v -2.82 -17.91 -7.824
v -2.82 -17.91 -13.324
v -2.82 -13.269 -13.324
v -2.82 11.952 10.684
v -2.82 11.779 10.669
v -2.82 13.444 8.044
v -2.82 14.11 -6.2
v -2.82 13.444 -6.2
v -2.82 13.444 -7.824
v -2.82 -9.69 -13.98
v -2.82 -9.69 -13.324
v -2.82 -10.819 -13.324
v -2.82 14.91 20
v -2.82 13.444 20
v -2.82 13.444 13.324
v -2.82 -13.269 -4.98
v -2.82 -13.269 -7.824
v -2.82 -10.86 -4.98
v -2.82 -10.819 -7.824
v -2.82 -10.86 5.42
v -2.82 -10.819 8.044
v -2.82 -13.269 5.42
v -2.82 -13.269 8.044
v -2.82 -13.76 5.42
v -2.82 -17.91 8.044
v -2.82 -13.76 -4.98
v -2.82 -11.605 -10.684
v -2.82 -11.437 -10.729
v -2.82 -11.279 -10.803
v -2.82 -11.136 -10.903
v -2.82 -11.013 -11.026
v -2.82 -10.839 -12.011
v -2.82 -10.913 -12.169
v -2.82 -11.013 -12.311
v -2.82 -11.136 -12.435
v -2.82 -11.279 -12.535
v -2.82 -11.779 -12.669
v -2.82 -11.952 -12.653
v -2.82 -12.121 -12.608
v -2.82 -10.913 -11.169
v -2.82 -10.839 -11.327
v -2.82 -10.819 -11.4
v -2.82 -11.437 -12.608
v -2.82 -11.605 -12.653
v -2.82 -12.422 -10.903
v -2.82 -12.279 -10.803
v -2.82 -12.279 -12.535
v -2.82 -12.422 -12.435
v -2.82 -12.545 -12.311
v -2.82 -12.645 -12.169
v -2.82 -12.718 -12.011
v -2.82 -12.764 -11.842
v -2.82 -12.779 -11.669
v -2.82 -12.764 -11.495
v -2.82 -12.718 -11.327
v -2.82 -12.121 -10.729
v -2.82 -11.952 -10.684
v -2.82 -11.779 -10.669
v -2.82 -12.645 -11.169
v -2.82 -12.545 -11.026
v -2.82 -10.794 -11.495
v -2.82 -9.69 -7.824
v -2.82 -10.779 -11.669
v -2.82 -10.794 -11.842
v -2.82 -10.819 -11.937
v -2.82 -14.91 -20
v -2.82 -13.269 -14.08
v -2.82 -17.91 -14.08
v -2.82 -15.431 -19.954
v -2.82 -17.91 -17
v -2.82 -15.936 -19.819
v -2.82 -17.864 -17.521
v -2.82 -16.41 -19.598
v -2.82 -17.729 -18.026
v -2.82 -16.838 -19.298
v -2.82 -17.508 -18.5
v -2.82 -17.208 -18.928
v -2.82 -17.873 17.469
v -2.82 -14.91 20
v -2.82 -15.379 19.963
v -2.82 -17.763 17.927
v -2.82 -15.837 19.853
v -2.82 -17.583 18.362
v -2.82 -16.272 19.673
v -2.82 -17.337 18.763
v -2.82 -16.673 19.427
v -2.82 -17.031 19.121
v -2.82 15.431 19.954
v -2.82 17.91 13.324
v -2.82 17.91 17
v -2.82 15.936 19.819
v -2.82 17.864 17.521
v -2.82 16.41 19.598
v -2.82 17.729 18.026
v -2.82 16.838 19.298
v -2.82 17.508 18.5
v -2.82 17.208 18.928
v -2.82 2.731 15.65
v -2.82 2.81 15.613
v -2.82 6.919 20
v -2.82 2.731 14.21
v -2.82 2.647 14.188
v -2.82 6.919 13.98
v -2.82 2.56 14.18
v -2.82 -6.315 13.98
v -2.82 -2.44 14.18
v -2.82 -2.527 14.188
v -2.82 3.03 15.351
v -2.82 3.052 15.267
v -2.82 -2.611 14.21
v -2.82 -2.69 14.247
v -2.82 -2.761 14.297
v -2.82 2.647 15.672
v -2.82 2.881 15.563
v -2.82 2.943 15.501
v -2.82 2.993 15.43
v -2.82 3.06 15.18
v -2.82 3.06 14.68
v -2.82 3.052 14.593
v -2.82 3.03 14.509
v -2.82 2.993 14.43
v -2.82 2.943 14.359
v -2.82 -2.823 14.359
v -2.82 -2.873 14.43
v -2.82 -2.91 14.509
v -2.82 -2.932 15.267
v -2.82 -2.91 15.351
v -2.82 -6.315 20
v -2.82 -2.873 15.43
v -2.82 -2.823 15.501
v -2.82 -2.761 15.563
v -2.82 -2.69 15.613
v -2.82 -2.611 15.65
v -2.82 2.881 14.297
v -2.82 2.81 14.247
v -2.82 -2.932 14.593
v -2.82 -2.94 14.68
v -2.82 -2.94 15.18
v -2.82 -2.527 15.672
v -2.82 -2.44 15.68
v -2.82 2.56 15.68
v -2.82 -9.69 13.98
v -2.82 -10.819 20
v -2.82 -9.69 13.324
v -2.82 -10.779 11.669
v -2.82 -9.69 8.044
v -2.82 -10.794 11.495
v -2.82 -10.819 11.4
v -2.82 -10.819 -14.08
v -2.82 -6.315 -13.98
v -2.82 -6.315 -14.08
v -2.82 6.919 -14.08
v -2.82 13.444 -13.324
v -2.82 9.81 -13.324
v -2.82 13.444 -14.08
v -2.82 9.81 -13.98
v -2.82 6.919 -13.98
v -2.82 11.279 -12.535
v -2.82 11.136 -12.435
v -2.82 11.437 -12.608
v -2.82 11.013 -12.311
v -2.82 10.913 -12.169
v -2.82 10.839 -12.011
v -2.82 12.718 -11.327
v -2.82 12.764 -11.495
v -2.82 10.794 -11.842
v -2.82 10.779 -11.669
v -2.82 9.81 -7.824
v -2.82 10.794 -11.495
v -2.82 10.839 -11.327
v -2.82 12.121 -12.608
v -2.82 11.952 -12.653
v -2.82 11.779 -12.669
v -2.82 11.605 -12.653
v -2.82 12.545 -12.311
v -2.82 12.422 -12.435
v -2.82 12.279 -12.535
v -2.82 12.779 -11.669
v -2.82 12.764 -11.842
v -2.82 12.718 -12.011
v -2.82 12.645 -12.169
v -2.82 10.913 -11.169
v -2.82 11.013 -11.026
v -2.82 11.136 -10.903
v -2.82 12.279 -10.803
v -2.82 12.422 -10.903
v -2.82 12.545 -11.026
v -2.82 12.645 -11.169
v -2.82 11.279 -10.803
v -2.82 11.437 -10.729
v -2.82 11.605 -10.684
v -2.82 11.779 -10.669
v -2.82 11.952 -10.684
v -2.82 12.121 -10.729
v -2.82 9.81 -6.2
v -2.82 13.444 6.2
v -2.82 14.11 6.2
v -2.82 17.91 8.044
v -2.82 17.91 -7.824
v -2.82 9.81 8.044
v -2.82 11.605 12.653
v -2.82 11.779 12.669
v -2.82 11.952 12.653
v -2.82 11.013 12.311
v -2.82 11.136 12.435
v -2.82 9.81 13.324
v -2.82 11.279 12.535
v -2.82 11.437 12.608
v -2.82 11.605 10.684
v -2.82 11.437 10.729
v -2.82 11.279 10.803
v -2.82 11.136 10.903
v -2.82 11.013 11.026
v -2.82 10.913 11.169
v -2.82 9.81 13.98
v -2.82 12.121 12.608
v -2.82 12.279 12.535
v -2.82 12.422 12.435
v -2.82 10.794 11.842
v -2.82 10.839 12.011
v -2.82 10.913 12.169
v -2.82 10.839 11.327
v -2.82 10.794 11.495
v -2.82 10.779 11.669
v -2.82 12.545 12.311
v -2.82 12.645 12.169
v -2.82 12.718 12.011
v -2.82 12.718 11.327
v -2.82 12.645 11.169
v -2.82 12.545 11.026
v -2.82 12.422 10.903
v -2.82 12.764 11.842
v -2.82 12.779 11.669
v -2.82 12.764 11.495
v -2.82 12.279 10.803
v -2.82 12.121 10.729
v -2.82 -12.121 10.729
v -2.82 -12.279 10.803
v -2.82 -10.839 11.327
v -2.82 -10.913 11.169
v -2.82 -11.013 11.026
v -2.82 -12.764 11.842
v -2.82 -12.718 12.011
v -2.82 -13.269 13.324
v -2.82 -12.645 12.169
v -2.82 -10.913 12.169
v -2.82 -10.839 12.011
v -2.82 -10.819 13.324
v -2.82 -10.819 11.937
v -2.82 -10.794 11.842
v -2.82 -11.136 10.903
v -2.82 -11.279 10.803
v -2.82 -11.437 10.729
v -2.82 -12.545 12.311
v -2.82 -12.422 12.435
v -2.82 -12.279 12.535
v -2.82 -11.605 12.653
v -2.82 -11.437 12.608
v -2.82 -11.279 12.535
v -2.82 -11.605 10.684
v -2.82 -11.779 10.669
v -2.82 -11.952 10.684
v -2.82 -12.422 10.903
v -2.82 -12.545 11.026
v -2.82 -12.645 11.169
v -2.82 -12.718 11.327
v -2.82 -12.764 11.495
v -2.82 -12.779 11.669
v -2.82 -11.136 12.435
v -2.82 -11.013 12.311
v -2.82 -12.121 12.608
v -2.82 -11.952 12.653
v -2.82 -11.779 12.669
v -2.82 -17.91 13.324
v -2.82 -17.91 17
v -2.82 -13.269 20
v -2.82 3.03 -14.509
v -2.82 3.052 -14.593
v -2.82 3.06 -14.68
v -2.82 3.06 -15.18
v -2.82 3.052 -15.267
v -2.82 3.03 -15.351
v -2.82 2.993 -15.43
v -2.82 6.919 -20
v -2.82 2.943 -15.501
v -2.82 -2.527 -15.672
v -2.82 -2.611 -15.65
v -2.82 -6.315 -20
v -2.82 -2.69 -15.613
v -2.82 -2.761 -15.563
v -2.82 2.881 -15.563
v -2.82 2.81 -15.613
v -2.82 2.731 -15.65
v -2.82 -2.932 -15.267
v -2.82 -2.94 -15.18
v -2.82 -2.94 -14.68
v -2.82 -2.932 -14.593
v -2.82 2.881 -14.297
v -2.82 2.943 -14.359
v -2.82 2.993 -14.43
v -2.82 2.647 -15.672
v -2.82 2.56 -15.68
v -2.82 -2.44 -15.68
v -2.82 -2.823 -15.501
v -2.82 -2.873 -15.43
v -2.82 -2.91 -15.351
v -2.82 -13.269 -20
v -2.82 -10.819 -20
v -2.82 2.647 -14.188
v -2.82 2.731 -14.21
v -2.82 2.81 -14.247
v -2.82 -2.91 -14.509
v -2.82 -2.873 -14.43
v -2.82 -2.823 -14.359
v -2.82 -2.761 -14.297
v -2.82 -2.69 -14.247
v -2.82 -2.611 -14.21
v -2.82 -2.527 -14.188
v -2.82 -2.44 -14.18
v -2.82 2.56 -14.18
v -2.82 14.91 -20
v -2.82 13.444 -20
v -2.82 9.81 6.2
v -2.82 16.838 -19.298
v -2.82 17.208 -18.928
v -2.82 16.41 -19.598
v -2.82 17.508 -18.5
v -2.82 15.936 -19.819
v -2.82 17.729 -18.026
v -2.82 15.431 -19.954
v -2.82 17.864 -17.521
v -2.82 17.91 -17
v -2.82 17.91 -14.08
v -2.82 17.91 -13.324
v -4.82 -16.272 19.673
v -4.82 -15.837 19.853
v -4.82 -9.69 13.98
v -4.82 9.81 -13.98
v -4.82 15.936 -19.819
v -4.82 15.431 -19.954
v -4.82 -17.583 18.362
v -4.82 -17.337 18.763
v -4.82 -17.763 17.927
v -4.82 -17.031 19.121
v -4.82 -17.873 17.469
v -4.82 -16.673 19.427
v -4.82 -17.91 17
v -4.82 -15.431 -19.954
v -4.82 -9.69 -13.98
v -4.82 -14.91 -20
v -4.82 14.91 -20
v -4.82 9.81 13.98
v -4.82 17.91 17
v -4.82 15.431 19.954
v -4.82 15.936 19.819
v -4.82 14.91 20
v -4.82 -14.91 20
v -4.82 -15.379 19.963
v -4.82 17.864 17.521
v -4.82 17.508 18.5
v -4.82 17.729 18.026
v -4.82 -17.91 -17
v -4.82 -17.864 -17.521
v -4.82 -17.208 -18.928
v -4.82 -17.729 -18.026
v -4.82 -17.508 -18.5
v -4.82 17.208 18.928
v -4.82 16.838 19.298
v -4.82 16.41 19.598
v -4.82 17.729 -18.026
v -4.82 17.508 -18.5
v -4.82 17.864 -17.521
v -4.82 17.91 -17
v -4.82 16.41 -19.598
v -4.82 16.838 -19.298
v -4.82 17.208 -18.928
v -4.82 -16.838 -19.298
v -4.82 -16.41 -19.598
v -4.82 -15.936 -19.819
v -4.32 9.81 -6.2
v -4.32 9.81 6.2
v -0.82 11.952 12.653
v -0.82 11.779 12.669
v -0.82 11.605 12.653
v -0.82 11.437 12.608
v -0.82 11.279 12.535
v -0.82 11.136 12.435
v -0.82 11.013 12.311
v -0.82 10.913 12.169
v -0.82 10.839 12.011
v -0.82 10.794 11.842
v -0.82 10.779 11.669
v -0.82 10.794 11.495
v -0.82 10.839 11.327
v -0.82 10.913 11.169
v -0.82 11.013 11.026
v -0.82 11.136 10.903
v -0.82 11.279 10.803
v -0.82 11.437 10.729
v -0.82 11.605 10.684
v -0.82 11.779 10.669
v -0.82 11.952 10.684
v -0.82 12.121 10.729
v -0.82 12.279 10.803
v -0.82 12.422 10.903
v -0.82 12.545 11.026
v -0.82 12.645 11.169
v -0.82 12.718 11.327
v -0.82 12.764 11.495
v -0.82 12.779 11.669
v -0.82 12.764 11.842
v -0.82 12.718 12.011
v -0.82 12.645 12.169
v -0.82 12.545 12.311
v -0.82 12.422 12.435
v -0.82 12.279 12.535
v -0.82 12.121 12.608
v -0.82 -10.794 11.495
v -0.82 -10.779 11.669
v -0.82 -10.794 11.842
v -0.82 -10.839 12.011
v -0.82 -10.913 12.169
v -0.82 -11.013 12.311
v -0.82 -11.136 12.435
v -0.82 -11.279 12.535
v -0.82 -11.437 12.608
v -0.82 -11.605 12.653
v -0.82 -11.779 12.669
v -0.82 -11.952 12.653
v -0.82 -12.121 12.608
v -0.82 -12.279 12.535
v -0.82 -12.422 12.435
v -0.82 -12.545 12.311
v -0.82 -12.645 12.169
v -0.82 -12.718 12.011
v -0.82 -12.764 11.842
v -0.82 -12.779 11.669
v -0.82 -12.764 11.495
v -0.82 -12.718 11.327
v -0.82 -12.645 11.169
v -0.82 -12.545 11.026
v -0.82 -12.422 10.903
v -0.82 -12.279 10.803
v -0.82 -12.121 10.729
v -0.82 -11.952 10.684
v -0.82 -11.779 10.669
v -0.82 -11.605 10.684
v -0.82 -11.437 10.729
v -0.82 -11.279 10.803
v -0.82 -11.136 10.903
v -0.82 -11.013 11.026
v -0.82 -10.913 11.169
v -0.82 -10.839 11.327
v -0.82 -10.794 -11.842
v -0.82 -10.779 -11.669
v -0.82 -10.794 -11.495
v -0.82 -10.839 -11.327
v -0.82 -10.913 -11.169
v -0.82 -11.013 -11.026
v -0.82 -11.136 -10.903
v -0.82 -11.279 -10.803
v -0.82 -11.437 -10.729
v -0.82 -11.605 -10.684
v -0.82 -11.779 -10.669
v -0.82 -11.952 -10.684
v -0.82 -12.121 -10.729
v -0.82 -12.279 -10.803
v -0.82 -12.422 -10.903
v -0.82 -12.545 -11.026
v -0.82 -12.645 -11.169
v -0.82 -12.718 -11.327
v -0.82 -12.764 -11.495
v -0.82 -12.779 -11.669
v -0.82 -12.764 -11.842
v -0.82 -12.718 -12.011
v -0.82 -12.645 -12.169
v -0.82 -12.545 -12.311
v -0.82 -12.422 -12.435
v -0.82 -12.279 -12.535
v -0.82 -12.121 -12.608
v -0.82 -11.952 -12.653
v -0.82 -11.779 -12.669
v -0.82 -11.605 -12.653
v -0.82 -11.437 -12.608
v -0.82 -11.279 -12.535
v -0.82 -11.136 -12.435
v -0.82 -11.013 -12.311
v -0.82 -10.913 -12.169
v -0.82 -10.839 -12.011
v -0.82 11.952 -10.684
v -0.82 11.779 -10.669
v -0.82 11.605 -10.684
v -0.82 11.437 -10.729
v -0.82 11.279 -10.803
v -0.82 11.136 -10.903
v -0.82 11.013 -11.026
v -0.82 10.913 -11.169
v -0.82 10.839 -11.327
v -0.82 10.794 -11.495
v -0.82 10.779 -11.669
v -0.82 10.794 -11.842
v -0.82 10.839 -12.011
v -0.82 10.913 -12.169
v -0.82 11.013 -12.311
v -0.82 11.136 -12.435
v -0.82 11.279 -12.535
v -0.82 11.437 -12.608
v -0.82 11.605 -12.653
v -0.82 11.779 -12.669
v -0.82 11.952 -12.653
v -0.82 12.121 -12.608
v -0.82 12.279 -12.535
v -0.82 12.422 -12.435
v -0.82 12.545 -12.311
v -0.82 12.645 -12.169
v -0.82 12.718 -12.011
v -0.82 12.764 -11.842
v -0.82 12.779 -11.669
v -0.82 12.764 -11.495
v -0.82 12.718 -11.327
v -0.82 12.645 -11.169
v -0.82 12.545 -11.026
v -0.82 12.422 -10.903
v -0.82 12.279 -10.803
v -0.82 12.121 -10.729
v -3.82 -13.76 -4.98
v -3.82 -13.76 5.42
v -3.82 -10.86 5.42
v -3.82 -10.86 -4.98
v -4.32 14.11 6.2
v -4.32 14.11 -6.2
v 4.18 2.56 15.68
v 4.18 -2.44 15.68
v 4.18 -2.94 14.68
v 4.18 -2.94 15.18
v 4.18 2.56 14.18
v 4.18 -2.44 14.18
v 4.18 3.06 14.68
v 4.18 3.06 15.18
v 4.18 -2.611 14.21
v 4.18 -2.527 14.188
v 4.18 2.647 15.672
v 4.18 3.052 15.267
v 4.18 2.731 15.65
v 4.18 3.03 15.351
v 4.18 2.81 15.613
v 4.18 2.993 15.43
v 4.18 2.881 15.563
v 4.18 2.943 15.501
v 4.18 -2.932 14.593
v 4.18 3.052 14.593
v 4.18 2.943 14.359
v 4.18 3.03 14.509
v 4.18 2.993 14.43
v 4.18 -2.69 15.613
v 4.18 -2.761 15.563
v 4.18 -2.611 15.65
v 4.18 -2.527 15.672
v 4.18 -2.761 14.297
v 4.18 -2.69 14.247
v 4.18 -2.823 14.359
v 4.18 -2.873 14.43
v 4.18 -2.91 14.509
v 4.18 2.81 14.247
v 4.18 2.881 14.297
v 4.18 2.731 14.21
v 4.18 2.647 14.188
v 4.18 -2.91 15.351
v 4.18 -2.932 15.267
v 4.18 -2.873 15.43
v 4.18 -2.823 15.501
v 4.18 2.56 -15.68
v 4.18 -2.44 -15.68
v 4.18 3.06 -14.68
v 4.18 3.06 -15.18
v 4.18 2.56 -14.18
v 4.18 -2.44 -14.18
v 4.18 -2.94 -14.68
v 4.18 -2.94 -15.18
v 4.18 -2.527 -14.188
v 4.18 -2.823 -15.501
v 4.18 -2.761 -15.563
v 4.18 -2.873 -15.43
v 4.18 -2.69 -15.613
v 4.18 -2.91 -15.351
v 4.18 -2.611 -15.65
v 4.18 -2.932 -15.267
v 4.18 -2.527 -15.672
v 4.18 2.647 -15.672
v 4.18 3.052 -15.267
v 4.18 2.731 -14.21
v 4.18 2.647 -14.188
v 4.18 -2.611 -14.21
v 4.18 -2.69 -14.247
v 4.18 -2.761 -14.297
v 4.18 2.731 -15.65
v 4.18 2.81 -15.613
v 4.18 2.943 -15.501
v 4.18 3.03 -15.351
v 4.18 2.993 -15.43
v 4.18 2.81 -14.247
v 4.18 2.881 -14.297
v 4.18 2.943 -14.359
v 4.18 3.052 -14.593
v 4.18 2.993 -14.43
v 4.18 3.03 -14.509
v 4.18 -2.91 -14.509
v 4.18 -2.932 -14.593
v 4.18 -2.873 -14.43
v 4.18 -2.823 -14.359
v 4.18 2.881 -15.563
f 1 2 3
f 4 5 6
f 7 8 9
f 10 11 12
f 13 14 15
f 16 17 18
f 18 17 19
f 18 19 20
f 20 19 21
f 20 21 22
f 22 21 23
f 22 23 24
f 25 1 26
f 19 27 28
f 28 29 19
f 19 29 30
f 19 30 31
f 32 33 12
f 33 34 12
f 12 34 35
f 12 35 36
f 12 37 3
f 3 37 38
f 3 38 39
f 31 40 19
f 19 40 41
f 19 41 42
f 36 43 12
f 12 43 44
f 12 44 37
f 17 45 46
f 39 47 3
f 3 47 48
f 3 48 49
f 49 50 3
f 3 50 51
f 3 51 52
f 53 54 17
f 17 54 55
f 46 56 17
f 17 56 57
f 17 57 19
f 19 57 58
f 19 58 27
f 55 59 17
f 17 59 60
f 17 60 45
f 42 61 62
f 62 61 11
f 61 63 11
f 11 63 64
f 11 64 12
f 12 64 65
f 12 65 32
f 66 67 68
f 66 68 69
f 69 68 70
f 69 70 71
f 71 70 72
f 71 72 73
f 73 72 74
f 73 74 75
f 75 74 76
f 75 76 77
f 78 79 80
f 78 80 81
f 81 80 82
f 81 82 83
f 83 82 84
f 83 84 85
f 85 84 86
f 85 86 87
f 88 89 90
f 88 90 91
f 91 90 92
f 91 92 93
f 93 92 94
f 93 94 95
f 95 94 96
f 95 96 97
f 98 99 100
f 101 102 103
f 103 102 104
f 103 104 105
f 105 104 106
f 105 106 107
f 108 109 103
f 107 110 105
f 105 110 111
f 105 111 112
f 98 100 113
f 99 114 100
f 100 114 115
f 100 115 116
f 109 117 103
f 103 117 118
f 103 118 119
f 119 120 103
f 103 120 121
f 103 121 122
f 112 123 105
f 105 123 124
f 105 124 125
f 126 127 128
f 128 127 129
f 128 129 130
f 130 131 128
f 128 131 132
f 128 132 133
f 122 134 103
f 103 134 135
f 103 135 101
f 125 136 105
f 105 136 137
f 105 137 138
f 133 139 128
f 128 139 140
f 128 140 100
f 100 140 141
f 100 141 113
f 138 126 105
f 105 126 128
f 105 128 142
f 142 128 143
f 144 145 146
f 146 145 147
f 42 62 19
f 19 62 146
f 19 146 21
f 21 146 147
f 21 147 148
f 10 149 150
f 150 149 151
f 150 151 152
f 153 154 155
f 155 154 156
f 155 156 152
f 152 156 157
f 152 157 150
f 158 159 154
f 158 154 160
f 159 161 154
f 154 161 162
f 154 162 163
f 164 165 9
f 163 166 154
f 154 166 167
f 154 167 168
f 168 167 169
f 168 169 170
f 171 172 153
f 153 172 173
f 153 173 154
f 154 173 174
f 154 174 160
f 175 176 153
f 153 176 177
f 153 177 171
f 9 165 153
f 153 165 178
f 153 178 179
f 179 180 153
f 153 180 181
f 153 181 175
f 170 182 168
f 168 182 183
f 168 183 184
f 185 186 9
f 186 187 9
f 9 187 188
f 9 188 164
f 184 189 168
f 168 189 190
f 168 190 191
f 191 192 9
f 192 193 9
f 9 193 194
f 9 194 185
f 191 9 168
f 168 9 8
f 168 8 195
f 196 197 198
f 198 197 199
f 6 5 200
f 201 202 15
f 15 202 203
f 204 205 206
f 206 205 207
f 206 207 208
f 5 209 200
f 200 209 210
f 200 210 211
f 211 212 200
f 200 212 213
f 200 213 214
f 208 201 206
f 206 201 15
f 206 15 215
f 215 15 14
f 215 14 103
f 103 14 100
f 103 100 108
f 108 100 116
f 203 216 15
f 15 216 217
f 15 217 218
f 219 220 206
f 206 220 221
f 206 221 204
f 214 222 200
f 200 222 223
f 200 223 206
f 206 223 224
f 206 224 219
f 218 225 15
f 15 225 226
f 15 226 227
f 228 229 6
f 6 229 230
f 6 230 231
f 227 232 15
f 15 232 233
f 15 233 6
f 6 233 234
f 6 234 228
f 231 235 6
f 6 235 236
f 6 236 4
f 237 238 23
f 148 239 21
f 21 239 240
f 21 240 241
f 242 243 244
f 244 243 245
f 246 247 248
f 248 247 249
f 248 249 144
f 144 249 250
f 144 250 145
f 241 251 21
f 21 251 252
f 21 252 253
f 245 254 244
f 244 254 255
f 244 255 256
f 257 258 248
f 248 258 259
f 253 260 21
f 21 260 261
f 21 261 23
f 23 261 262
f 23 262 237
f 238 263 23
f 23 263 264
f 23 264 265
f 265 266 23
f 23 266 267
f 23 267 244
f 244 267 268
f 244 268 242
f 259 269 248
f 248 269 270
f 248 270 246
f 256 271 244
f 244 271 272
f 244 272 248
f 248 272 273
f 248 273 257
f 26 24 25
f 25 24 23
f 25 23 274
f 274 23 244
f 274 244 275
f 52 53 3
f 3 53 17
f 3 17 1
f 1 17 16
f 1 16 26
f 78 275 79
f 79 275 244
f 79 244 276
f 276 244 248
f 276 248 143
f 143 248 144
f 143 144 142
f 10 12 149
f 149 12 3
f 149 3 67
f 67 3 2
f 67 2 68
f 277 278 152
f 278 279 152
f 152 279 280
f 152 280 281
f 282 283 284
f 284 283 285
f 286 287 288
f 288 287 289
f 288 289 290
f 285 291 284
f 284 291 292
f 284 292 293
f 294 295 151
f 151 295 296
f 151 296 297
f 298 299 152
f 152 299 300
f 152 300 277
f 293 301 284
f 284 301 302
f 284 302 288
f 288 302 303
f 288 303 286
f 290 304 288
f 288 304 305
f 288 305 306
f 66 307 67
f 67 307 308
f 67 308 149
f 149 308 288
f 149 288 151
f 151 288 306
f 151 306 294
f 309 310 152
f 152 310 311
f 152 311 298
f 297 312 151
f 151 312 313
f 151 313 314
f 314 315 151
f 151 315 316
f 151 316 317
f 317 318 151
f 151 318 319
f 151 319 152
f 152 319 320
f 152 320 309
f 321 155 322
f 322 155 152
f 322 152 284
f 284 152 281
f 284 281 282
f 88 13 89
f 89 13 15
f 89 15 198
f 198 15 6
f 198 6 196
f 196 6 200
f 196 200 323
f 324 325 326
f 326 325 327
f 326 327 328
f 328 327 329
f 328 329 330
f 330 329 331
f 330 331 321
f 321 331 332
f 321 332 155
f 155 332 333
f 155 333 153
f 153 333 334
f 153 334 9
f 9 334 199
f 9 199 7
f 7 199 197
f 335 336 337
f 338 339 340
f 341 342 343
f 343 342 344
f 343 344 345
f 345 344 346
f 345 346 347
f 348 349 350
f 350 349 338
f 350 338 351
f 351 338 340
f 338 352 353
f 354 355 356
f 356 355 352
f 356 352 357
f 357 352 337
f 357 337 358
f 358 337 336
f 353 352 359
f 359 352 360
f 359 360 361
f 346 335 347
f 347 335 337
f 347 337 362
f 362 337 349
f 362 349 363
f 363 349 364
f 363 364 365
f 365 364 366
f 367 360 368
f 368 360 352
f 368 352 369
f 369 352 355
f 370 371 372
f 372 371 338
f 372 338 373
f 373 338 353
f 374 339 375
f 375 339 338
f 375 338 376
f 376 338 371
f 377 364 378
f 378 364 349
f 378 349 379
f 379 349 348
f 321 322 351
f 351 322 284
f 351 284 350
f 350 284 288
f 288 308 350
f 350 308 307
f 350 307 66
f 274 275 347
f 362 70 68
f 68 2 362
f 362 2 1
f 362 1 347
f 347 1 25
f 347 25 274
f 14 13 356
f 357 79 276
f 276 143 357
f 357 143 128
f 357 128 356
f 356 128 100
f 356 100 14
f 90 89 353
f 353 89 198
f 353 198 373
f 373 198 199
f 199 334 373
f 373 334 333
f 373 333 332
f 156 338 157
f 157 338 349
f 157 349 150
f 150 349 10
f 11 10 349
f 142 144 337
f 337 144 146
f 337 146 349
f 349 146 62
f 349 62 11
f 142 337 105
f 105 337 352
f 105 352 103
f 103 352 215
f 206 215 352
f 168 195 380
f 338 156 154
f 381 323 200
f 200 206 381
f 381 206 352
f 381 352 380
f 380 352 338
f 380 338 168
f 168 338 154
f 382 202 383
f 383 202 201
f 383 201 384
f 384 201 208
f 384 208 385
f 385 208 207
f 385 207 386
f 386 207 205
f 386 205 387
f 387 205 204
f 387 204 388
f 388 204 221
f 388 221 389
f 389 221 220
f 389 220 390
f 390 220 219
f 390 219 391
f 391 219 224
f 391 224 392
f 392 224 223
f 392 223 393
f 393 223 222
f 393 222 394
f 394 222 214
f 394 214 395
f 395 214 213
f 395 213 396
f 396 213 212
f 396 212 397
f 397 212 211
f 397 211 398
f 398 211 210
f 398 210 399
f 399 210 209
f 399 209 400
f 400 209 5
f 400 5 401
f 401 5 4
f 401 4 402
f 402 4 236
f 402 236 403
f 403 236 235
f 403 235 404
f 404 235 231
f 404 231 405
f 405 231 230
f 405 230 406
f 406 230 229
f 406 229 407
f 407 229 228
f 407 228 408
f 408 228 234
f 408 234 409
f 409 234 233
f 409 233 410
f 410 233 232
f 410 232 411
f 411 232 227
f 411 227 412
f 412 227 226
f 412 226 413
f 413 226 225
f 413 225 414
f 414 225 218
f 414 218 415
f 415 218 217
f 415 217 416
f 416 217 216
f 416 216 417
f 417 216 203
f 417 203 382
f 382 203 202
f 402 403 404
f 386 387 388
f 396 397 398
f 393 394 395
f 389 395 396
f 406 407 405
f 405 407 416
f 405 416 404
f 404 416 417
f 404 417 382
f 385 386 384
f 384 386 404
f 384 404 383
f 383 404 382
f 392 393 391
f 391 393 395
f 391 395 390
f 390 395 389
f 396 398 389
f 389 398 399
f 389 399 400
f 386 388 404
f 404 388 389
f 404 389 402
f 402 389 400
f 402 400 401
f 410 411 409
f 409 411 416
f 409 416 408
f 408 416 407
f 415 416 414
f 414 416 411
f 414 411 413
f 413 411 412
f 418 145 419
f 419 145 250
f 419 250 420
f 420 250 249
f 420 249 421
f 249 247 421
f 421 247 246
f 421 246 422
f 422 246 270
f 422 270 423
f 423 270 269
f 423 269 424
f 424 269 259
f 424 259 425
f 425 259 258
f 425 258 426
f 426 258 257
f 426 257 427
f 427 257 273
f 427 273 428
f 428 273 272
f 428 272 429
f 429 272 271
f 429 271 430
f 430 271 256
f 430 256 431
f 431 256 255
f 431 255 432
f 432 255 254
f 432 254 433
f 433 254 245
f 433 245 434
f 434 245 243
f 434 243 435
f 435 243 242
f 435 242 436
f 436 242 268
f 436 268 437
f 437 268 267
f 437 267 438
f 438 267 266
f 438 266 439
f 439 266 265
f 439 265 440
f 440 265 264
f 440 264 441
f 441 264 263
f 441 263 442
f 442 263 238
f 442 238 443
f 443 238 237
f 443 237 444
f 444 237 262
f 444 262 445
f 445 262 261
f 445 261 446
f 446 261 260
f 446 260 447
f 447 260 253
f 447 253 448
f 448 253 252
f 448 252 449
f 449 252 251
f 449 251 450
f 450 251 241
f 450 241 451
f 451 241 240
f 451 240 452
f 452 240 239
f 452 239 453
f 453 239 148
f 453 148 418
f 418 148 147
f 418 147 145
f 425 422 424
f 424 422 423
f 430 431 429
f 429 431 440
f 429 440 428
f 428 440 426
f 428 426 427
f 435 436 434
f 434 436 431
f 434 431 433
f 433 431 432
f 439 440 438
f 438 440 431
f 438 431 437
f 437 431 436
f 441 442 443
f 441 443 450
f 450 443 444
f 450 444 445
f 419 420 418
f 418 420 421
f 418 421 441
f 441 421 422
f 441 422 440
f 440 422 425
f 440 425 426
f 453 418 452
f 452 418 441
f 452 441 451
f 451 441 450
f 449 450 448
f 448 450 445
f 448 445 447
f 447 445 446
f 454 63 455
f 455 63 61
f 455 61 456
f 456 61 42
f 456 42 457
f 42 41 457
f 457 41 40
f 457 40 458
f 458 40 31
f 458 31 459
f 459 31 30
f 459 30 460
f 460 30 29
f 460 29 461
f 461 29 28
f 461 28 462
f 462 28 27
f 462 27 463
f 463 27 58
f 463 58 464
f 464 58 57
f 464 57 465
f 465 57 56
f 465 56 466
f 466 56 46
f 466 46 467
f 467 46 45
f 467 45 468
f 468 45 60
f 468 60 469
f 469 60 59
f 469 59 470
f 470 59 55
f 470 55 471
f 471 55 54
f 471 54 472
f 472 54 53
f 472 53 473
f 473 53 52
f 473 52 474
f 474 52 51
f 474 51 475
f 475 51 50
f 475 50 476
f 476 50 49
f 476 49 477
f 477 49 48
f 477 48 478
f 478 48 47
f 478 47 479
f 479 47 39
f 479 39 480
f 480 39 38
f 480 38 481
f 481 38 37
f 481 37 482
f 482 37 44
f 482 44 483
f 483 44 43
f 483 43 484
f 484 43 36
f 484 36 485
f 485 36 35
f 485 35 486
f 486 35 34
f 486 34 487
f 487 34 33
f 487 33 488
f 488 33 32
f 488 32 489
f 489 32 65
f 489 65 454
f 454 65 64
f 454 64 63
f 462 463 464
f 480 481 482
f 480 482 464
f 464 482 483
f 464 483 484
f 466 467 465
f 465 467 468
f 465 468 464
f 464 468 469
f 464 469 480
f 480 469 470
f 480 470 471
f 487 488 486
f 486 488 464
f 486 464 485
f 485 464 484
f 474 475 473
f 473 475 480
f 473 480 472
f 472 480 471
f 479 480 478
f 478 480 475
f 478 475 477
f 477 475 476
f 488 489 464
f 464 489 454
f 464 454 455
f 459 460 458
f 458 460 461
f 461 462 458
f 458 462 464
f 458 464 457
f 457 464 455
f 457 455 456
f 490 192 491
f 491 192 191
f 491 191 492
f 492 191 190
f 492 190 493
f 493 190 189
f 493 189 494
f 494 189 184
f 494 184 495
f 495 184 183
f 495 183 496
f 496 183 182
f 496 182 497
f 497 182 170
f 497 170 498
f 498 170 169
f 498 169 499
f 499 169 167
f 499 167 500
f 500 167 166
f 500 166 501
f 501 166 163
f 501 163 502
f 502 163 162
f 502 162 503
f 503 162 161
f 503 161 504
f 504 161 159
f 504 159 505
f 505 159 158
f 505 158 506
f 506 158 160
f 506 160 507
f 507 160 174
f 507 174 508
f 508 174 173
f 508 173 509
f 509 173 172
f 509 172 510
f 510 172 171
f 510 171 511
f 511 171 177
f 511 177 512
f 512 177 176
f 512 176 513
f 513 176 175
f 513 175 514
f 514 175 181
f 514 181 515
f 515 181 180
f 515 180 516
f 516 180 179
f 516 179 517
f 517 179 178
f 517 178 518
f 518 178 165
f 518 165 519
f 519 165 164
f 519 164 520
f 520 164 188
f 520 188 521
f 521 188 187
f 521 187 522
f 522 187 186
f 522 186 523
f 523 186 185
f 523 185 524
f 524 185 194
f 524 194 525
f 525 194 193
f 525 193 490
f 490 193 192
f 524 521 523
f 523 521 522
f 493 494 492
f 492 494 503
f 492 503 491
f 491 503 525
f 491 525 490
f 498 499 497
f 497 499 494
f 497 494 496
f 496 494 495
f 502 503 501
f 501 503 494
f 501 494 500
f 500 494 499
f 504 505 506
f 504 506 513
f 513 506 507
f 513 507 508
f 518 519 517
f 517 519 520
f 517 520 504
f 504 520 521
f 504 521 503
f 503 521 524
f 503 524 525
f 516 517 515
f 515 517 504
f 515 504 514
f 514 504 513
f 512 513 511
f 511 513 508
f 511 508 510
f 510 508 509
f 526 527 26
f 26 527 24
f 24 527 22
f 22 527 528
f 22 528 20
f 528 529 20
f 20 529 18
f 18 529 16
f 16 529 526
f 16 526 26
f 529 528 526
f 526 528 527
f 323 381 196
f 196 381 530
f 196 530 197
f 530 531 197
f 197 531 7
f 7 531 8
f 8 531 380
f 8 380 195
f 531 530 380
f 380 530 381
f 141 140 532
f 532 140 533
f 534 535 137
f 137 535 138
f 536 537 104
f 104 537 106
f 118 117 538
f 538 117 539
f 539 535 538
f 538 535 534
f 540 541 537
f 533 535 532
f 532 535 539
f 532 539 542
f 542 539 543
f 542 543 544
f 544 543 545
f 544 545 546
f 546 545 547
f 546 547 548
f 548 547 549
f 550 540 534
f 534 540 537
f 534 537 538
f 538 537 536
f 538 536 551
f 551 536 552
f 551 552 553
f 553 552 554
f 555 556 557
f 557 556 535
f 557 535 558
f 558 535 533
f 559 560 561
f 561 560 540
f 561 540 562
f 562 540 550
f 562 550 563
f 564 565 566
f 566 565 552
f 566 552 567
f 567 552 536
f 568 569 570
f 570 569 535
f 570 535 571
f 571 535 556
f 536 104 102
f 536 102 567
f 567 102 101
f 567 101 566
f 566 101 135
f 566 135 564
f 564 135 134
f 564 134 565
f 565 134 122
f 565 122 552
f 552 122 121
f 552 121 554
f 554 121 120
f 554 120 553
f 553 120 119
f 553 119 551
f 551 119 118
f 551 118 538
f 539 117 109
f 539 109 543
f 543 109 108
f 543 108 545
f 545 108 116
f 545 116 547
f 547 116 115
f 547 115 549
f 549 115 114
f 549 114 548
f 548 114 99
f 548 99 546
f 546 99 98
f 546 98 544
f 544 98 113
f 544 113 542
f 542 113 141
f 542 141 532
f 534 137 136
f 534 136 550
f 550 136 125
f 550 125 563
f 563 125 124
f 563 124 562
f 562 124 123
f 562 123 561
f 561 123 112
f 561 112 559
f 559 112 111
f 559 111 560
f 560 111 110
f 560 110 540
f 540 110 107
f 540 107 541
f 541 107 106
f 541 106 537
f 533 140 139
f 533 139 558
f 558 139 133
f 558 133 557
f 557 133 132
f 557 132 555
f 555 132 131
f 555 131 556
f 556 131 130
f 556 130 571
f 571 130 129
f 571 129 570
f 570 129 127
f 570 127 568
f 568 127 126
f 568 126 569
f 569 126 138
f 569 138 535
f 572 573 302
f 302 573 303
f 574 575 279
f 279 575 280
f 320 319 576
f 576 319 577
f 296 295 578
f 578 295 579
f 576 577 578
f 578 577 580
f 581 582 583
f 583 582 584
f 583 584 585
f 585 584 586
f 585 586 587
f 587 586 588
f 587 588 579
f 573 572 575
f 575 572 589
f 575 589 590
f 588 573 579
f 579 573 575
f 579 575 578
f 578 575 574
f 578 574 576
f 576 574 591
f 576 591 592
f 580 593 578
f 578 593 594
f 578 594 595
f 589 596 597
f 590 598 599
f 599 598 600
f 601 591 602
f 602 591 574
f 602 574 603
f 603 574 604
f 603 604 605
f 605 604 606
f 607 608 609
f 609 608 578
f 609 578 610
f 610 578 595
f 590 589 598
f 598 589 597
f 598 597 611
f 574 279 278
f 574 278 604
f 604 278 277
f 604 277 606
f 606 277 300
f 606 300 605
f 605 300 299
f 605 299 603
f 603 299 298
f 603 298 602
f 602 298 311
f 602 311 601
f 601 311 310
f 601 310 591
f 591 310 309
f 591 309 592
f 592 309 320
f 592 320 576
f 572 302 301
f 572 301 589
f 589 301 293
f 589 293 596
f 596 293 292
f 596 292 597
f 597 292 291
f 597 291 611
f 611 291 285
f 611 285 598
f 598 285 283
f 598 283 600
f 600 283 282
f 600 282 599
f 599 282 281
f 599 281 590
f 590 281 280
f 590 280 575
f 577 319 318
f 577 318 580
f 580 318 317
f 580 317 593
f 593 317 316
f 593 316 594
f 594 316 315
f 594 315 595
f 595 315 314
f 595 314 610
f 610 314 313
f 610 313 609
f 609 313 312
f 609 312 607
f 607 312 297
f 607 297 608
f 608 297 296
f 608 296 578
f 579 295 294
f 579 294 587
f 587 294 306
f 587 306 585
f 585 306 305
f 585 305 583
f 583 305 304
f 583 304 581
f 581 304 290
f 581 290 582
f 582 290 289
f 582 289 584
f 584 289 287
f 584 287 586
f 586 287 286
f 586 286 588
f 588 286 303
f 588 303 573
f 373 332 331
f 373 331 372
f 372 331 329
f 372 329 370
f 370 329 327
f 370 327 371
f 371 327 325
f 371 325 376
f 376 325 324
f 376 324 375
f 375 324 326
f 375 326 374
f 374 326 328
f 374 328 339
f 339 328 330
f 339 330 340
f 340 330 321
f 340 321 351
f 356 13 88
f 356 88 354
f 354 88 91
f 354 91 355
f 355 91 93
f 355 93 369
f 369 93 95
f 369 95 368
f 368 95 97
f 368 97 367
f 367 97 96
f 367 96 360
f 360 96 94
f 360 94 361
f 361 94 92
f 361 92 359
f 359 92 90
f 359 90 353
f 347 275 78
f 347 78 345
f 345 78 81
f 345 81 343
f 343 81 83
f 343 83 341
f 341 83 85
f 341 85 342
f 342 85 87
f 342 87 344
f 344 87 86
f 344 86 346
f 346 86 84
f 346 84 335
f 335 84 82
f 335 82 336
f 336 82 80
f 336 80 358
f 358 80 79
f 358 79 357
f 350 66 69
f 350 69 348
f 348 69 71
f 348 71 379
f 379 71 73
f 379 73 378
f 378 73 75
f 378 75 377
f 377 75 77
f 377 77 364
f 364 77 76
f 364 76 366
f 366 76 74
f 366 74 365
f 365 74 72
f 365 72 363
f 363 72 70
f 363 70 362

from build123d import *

# Parameters (mm, degrees)
ESQUISSE3_W             = 40
ESQUISSE3_H             = 35.82
BOSS_EXTRU_1_DEPTH      = 2
ESQUISSE4_R             = 1
BOSS_EXTRU_2_DEPTH      = 2
ESQUISSE5_W             = 10.4
ESQUISSE5_H             = 2.9
ENL_V_MAT_EXTRU_1_DEPTH = 1
ESQUISSE6_W             = 12.4
ESQUISSE6_H             = 4.5
ENL_V_MAT_EXTRU_2_DEPTH = 1.5
ESQUISSE8_W             = 1.5
ESQUISSE8_H             = 6
BOSS_EXTRU_3_DEPTH      = 7
CONG_1_R                = 0.5
CONG_1_OF_SYM_TRIE1_R   = 0.5
CONG_2_R                = 3


with BuildPart() as part:
    # Esquisse3 → Boss.-Extru.1 (new body)
    with BuildSketch(Plane.ZY.offset(2.820074362)):
        Rectangle(ESQUISSE3_W, ESQUISSE3_H)
        Polygon((-13.98, 9.81), (-13.98, -9.69), (13.98, -9.69), (13.98, 9.81), (6, 9.81), (-6, 9.81), align=None, mode=Mode.SUBTRACT)
    extrude(amount=BOSS_EXTRU_1_DEPTH)

    # Esquisse4 → Boss.-Extru.2 (add)
    with BuildSketch(Plane(origin=(-2.820074362, 0, 0), x_dir=(0, 0, -1), z_dir=(1, 0, 0))):
        with Locations(Location((-11.668662175, 11.778743894, 0), (0, 0, 180))):
            Circle(ESQUISSE4_R)
        with Locations(Location((-11.668662175, -11.778743894, 0), (0, 0, 180))):
            Circle(ESQUISSE4_R)
        with Locations(Location((11.668662175, -11.778743894, 0), (0, 0, 180))):
            Circle(ESQUISSE4_R)
        with Locations(Location((11.668662175, 11.778743894, 0), (0, 0, 180))):
            Circle(ESQUISSE4_R)
    extrude(amount=BOSS_EXTRU_2_DEPTH)

    # Esquisse5 → Enlèv. mat.-Extru.1 (cut)
    with BuildSketch(Plane(origin=(-2.820074362, 0, 0), x_dir=(0, 0, -1), z_dir=(1, 0, 0))):
        with Locations((-0.22, -12.31)):
            Rectangle(ESQUISSE5_W, ESQUISSE5_H)
    extrude(amount=-ENL_V_MAT_EXTRU_1_DEPTH, mode=Mode.SUBTRACT)

    # Esquisse6 → Enlèv. mat.-Extru.2 (cut)
    with BuildSketch(Plane(origin=(-2.820074362, 0, 0), x_dir=(0, 0, -1), z_dir=(1, 0, 0))):
        with Locations((0, 11.86)):
            Rectangle(ESQUISSE6_W, ESQUISSE6_H)
    extrude(amount=-ENL_V_MAT_EXTRU_2_DEPTH, mode=Mode.SUBTRACT)

    # Esquisse8 → Boss.-Extru.3 (add)
    with BuildSketch(Plane(origin=(-2.820074362, 0, 0), x_dir=(0, 0, -1), z_dir=(1, 0, 0))):
        with Locations((-14.93, 0.06)):
            Rectangle(ESQUISSE8_W, ESQUISSE8_H)
    boss_extru_3 = extrude(amount=BOSS_EXTRU_3_DEPTH)

    # Congé1
    cong_1_edges = [part.edges().sort_by_distance(p)[0] for p in [
        (0.679925638, 3.06, 15.68),
        (0.679925638, -2.94, 15.68),
        (0.679925638, -2.94, 14.18),
        (0.679925638, 3.06, 14.18),
    ]]
    fillet(cong_1_edges, radius=CONG_1_R)

    # Symétrie1: Boss.-Extru.3 across plane
    add(boss_extru_3.mirror(Plane.XY))

    # Congé1 of Symétrie1
    cong_1_of_sym_trie1_edges = [part.edges().sort_by_distance(p)[0] for p in [
        (0.679925638, 3.06, -15.68),
        (0.679925638, -2.94, -15.68),
        (0.679925638, -2.94, -14.18),
        (0.679925638, 3.06, -14.18),
    ]]
    fillet(cong_1_of_sym_trie1_edges, radius=CONG_1_OF_SYM_TRIE1_R)

    # Congé2
    cong_2_edges = [part.edges().sort_by_distance(p)[0] for p in [
        (-3.820074362, 17.91, -20),
        (-3.820074362, 17.91, 20),
        (-3.820074362, -17.91, 20),
        (-3.820074362, -17.91, -20),
    ]]
    fillet(cong_2_edges, radius=CONG_2_R)


solid = part.part
